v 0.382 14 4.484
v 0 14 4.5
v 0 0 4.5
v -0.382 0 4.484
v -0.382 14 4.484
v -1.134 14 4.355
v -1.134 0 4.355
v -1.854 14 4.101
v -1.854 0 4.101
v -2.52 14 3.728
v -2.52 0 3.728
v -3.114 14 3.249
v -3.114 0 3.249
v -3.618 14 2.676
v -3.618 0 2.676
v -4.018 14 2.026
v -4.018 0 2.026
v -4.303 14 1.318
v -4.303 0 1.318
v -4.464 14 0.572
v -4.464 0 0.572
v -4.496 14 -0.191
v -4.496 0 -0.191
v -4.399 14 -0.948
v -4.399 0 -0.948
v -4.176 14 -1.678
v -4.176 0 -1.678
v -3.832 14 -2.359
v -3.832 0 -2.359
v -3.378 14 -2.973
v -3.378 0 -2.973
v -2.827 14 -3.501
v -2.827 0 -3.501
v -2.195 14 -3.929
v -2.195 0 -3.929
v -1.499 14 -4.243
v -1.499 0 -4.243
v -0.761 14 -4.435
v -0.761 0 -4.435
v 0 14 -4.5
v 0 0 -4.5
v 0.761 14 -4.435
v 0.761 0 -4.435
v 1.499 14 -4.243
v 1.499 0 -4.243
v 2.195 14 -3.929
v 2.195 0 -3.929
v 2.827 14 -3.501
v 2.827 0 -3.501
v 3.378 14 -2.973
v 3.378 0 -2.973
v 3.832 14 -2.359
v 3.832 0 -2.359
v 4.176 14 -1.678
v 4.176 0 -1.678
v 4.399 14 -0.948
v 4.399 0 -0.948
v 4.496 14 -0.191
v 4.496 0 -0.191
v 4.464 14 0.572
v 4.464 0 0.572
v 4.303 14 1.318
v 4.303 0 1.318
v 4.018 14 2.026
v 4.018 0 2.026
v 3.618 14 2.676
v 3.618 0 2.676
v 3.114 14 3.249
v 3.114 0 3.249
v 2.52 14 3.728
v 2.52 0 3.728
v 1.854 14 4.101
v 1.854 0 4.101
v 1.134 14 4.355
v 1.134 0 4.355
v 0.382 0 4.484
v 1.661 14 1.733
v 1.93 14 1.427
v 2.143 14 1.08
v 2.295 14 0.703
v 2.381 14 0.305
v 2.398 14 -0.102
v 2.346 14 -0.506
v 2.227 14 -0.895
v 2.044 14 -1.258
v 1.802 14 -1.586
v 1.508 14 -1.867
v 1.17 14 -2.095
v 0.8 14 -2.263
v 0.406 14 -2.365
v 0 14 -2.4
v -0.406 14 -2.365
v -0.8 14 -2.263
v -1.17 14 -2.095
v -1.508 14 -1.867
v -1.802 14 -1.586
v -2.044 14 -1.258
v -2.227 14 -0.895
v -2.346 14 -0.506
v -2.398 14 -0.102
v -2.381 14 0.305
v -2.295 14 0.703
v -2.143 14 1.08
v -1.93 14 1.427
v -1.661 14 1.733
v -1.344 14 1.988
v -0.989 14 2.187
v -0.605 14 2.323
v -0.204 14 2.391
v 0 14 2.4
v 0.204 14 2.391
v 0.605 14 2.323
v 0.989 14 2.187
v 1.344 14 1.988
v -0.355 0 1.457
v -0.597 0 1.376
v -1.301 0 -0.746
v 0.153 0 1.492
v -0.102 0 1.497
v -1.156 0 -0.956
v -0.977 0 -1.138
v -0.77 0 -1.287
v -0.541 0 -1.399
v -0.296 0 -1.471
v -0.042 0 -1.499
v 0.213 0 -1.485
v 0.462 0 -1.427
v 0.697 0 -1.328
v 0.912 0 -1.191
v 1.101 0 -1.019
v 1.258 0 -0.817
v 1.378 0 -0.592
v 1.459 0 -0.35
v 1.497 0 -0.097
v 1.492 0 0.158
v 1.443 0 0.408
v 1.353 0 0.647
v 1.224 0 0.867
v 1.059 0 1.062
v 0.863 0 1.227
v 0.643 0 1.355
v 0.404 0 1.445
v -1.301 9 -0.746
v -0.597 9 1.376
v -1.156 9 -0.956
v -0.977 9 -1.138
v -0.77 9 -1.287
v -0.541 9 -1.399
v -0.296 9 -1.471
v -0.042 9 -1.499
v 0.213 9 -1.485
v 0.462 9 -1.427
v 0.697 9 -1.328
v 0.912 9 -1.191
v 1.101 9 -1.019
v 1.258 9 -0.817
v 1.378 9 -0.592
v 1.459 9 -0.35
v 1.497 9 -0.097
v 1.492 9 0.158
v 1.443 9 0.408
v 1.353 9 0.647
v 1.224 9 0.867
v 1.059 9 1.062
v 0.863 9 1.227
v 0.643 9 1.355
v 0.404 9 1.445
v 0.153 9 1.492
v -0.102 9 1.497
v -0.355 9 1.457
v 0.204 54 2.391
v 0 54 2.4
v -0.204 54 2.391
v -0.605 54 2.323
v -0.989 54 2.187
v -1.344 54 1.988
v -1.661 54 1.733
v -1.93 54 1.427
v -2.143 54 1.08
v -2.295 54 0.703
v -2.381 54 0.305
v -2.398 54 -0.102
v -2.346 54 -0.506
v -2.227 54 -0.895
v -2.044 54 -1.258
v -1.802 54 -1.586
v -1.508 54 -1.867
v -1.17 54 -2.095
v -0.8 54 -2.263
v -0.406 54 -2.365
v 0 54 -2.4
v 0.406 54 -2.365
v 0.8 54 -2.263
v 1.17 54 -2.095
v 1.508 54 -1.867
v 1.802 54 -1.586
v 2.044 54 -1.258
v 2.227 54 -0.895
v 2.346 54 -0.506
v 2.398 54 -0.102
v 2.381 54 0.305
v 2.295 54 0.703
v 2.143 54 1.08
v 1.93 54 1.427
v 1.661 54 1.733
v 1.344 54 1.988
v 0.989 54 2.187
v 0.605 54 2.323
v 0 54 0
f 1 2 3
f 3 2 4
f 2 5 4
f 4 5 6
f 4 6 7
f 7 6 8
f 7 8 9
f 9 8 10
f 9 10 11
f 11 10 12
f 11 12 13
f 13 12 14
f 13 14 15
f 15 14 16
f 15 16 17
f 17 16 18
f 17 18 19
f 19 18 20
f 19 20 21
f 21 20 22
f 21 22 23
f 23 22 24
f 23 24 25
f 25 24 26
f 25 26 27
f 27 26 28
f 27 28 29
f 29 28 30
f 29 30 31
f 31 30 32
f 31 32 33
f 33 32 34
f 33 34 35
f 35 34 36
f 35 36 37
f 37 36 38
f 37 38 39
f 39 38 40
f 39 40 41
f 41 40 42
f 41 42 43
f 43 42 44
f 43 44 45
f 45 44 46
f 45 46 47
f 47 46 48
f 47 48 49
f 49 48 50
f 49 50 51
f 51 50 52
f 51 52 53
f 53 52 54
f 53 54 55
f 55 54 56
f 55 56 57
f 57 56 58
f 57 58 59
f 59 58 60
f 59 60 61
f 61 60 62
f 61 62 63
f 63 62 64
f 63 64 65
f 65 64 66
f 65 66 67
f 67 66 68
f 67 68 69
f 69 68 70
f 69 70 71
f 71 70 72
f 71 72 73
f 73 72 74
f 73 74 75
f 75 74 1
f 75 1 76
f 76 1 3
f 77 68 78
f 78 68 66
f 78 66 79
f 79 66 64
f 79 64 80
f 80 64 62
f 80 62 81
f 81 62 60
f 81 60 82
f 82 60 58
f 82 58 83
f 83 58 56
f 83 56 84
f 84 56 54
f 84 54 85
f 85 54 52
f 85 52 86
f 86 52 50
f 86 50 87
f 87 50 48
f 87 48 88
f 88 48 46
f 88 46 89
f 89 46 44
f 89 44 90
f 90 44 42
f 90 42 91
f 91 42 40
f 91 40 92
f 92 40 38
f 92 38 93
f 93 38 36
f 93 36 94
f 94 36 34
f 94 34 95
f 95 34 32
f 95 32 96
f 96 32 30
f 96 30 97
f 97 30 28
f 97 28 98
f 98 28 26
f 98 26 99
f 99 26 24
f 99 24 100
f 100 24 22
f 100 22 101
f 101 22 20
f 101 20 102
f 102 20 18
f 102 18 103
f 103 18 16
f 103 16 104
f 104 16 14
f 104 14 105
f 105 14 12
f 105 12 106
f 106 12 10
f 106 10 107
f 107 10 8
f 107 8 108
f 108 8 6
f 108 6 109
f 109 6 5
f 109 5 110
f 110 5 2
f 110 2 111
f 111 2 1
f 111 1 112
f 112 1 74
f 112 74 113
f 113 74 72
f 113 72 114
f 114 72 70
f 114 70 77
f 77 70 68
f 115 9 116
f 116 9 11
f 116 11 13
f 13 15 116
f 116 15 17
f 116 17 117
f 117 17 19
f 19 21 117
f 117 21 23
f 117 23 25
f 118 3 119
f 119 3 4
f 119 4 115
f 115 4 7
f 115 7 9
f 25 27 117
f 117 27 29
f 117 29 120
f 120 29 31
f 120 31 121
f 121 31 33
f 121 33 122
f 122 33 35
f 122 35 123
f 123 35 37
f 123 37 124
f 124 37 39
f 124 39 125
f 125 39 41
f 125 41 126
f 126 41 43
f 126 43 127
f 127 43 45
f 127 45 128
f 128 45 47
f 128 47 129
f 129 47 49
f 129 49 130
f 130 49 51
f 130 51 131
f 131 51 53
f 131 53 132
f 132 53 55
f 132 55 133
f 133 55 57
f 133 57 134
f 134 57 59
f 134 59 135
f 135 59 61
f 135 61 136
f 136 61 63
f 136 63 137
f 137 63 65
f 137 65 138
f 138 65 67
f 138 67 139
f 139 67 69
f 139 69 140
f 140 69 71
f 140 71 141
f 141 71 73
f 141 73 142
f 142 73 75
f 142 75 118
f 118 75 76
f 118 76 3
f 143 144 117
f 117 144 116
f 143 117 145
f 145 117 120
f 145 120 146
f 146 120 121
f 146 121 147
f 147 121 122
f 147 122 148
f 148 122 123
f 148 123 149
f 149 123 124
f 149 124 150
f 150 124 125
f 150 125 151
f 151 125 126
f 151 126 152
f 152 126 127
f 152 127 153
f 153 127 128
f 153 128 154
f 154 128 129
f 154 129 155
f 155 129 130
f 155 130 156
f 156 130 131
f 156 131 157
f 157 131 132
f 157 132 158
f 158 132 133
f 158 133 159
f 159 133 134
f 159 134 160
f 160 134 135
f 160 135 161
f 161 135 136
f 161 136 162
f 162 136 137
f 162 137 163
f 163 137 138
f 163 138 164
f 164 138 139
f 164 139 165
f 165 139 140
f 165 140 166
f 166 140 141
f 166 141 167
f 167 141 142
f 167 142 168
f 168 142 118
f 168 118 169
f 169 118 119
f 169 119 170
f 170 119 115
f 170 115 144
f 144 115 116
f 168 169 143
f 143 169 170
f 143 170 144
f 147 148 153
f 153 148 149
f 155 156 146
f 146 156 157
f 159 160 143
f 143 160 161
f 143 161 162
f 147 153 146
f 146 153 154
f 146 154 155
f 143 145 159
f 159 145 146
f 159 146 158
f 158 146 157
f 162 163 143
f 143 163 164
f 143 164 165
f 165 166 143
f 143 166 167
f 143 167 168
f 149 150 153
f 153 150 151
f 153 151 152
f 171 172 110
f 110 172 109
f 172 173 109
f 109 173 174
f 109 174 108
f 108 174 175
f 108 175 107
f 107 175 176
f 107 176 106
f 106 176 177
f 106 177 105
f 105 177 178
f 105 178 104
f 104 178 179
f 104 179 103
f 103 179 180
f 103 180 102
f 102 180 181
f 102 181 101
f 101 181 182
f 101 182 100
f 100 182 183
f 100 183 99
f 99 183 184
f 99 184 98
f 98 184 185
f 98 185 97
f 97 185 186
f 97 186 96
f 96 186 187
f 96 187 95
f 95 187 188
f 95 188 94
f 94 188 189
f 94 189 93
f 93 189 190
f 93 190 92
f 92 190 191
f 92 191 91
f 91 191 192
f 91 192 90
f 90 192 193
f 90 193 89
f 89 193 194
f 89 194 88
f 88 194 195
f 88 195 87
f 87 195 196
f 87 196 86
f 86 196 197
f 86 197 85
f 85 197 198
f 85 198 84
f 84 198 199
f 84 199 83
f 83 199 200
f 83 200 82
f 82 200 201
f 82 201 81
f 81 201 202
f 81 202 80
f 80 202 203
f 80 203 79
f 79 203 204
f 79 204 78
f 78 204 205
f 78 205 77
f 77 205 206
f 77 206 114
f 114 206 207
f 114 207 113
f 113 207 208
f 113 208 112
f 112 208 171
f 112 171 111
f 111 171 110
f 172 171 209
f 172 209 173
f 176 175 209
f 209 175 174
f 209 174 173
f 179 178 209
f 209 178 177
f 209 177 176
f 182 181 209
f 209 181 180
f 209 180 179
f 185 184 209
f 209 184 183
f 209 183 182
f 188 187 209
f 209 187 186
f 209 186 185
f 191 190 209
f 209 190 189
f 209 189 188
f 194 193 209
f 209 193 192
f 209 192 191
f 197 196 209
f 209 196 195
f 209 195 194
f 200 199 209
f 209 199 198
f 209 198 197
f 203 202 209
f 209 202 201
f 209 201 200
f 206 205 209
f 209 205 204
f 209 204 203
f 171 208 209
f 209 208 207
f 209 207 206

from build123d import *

# Parameters (mm, degrees)
SKETCH2_R           = 4.5
BOSS_EXTRUDE1_DEPTH = 14
CUT_EXTRUDE1_DEPTH  = 9
SKETCH3_R           = 2.4
BOSS_EXTRUDE2_DEPTH = 40


with BuildPart() as part:
    # Sketch2 → Boss-Extrude1 (new body)
    with BuildSketch(Plane(origin=(0, 0, 0), x_dir=(1, 0, 0), z_dir=(0, 1, 0))):
        with Locations(Location((0, 0, 0), (0, 0, 270))):
            Circle(SKETCH2_R)
    extrude(amount=BOSS_EXTRUDE1_DEPTH)

    # Sketch4 → Cut-Extrude1 (cut)
    with BuildSketch(Plane.XZ):
        with BuildLine():
            ThreePointArc((1.5, 0), (0.823094575, 1.253999729), (-0.596687094, 1.376213832))
            Line((-0.596687094, 1.376213832), (-1.301393736, -0.74590505))
            ThreePointArc((-1.301393736, -0.74590505), (0.385946496, -1.449498293), (1.5, 0))
        make_face()
    extrude(amount=-CUT_EXTRUDE1_DEPTH, mode=Mode.SUBTRACT)

    # Sketch3 → Boss-Extrude2 (add)
    with BuildSketch(Plane(origin=(0, 14, 0), x_dir=(1, 0, 0), z_dir=(0, 1, 0))):
        with Locations(Location((0, 0, 0), (0, 0, 270))):
            Circle(SKETCH3_R)
    extrude(amount=BOSS_EXTRUDE2_DEPTH)


solid = part.part
